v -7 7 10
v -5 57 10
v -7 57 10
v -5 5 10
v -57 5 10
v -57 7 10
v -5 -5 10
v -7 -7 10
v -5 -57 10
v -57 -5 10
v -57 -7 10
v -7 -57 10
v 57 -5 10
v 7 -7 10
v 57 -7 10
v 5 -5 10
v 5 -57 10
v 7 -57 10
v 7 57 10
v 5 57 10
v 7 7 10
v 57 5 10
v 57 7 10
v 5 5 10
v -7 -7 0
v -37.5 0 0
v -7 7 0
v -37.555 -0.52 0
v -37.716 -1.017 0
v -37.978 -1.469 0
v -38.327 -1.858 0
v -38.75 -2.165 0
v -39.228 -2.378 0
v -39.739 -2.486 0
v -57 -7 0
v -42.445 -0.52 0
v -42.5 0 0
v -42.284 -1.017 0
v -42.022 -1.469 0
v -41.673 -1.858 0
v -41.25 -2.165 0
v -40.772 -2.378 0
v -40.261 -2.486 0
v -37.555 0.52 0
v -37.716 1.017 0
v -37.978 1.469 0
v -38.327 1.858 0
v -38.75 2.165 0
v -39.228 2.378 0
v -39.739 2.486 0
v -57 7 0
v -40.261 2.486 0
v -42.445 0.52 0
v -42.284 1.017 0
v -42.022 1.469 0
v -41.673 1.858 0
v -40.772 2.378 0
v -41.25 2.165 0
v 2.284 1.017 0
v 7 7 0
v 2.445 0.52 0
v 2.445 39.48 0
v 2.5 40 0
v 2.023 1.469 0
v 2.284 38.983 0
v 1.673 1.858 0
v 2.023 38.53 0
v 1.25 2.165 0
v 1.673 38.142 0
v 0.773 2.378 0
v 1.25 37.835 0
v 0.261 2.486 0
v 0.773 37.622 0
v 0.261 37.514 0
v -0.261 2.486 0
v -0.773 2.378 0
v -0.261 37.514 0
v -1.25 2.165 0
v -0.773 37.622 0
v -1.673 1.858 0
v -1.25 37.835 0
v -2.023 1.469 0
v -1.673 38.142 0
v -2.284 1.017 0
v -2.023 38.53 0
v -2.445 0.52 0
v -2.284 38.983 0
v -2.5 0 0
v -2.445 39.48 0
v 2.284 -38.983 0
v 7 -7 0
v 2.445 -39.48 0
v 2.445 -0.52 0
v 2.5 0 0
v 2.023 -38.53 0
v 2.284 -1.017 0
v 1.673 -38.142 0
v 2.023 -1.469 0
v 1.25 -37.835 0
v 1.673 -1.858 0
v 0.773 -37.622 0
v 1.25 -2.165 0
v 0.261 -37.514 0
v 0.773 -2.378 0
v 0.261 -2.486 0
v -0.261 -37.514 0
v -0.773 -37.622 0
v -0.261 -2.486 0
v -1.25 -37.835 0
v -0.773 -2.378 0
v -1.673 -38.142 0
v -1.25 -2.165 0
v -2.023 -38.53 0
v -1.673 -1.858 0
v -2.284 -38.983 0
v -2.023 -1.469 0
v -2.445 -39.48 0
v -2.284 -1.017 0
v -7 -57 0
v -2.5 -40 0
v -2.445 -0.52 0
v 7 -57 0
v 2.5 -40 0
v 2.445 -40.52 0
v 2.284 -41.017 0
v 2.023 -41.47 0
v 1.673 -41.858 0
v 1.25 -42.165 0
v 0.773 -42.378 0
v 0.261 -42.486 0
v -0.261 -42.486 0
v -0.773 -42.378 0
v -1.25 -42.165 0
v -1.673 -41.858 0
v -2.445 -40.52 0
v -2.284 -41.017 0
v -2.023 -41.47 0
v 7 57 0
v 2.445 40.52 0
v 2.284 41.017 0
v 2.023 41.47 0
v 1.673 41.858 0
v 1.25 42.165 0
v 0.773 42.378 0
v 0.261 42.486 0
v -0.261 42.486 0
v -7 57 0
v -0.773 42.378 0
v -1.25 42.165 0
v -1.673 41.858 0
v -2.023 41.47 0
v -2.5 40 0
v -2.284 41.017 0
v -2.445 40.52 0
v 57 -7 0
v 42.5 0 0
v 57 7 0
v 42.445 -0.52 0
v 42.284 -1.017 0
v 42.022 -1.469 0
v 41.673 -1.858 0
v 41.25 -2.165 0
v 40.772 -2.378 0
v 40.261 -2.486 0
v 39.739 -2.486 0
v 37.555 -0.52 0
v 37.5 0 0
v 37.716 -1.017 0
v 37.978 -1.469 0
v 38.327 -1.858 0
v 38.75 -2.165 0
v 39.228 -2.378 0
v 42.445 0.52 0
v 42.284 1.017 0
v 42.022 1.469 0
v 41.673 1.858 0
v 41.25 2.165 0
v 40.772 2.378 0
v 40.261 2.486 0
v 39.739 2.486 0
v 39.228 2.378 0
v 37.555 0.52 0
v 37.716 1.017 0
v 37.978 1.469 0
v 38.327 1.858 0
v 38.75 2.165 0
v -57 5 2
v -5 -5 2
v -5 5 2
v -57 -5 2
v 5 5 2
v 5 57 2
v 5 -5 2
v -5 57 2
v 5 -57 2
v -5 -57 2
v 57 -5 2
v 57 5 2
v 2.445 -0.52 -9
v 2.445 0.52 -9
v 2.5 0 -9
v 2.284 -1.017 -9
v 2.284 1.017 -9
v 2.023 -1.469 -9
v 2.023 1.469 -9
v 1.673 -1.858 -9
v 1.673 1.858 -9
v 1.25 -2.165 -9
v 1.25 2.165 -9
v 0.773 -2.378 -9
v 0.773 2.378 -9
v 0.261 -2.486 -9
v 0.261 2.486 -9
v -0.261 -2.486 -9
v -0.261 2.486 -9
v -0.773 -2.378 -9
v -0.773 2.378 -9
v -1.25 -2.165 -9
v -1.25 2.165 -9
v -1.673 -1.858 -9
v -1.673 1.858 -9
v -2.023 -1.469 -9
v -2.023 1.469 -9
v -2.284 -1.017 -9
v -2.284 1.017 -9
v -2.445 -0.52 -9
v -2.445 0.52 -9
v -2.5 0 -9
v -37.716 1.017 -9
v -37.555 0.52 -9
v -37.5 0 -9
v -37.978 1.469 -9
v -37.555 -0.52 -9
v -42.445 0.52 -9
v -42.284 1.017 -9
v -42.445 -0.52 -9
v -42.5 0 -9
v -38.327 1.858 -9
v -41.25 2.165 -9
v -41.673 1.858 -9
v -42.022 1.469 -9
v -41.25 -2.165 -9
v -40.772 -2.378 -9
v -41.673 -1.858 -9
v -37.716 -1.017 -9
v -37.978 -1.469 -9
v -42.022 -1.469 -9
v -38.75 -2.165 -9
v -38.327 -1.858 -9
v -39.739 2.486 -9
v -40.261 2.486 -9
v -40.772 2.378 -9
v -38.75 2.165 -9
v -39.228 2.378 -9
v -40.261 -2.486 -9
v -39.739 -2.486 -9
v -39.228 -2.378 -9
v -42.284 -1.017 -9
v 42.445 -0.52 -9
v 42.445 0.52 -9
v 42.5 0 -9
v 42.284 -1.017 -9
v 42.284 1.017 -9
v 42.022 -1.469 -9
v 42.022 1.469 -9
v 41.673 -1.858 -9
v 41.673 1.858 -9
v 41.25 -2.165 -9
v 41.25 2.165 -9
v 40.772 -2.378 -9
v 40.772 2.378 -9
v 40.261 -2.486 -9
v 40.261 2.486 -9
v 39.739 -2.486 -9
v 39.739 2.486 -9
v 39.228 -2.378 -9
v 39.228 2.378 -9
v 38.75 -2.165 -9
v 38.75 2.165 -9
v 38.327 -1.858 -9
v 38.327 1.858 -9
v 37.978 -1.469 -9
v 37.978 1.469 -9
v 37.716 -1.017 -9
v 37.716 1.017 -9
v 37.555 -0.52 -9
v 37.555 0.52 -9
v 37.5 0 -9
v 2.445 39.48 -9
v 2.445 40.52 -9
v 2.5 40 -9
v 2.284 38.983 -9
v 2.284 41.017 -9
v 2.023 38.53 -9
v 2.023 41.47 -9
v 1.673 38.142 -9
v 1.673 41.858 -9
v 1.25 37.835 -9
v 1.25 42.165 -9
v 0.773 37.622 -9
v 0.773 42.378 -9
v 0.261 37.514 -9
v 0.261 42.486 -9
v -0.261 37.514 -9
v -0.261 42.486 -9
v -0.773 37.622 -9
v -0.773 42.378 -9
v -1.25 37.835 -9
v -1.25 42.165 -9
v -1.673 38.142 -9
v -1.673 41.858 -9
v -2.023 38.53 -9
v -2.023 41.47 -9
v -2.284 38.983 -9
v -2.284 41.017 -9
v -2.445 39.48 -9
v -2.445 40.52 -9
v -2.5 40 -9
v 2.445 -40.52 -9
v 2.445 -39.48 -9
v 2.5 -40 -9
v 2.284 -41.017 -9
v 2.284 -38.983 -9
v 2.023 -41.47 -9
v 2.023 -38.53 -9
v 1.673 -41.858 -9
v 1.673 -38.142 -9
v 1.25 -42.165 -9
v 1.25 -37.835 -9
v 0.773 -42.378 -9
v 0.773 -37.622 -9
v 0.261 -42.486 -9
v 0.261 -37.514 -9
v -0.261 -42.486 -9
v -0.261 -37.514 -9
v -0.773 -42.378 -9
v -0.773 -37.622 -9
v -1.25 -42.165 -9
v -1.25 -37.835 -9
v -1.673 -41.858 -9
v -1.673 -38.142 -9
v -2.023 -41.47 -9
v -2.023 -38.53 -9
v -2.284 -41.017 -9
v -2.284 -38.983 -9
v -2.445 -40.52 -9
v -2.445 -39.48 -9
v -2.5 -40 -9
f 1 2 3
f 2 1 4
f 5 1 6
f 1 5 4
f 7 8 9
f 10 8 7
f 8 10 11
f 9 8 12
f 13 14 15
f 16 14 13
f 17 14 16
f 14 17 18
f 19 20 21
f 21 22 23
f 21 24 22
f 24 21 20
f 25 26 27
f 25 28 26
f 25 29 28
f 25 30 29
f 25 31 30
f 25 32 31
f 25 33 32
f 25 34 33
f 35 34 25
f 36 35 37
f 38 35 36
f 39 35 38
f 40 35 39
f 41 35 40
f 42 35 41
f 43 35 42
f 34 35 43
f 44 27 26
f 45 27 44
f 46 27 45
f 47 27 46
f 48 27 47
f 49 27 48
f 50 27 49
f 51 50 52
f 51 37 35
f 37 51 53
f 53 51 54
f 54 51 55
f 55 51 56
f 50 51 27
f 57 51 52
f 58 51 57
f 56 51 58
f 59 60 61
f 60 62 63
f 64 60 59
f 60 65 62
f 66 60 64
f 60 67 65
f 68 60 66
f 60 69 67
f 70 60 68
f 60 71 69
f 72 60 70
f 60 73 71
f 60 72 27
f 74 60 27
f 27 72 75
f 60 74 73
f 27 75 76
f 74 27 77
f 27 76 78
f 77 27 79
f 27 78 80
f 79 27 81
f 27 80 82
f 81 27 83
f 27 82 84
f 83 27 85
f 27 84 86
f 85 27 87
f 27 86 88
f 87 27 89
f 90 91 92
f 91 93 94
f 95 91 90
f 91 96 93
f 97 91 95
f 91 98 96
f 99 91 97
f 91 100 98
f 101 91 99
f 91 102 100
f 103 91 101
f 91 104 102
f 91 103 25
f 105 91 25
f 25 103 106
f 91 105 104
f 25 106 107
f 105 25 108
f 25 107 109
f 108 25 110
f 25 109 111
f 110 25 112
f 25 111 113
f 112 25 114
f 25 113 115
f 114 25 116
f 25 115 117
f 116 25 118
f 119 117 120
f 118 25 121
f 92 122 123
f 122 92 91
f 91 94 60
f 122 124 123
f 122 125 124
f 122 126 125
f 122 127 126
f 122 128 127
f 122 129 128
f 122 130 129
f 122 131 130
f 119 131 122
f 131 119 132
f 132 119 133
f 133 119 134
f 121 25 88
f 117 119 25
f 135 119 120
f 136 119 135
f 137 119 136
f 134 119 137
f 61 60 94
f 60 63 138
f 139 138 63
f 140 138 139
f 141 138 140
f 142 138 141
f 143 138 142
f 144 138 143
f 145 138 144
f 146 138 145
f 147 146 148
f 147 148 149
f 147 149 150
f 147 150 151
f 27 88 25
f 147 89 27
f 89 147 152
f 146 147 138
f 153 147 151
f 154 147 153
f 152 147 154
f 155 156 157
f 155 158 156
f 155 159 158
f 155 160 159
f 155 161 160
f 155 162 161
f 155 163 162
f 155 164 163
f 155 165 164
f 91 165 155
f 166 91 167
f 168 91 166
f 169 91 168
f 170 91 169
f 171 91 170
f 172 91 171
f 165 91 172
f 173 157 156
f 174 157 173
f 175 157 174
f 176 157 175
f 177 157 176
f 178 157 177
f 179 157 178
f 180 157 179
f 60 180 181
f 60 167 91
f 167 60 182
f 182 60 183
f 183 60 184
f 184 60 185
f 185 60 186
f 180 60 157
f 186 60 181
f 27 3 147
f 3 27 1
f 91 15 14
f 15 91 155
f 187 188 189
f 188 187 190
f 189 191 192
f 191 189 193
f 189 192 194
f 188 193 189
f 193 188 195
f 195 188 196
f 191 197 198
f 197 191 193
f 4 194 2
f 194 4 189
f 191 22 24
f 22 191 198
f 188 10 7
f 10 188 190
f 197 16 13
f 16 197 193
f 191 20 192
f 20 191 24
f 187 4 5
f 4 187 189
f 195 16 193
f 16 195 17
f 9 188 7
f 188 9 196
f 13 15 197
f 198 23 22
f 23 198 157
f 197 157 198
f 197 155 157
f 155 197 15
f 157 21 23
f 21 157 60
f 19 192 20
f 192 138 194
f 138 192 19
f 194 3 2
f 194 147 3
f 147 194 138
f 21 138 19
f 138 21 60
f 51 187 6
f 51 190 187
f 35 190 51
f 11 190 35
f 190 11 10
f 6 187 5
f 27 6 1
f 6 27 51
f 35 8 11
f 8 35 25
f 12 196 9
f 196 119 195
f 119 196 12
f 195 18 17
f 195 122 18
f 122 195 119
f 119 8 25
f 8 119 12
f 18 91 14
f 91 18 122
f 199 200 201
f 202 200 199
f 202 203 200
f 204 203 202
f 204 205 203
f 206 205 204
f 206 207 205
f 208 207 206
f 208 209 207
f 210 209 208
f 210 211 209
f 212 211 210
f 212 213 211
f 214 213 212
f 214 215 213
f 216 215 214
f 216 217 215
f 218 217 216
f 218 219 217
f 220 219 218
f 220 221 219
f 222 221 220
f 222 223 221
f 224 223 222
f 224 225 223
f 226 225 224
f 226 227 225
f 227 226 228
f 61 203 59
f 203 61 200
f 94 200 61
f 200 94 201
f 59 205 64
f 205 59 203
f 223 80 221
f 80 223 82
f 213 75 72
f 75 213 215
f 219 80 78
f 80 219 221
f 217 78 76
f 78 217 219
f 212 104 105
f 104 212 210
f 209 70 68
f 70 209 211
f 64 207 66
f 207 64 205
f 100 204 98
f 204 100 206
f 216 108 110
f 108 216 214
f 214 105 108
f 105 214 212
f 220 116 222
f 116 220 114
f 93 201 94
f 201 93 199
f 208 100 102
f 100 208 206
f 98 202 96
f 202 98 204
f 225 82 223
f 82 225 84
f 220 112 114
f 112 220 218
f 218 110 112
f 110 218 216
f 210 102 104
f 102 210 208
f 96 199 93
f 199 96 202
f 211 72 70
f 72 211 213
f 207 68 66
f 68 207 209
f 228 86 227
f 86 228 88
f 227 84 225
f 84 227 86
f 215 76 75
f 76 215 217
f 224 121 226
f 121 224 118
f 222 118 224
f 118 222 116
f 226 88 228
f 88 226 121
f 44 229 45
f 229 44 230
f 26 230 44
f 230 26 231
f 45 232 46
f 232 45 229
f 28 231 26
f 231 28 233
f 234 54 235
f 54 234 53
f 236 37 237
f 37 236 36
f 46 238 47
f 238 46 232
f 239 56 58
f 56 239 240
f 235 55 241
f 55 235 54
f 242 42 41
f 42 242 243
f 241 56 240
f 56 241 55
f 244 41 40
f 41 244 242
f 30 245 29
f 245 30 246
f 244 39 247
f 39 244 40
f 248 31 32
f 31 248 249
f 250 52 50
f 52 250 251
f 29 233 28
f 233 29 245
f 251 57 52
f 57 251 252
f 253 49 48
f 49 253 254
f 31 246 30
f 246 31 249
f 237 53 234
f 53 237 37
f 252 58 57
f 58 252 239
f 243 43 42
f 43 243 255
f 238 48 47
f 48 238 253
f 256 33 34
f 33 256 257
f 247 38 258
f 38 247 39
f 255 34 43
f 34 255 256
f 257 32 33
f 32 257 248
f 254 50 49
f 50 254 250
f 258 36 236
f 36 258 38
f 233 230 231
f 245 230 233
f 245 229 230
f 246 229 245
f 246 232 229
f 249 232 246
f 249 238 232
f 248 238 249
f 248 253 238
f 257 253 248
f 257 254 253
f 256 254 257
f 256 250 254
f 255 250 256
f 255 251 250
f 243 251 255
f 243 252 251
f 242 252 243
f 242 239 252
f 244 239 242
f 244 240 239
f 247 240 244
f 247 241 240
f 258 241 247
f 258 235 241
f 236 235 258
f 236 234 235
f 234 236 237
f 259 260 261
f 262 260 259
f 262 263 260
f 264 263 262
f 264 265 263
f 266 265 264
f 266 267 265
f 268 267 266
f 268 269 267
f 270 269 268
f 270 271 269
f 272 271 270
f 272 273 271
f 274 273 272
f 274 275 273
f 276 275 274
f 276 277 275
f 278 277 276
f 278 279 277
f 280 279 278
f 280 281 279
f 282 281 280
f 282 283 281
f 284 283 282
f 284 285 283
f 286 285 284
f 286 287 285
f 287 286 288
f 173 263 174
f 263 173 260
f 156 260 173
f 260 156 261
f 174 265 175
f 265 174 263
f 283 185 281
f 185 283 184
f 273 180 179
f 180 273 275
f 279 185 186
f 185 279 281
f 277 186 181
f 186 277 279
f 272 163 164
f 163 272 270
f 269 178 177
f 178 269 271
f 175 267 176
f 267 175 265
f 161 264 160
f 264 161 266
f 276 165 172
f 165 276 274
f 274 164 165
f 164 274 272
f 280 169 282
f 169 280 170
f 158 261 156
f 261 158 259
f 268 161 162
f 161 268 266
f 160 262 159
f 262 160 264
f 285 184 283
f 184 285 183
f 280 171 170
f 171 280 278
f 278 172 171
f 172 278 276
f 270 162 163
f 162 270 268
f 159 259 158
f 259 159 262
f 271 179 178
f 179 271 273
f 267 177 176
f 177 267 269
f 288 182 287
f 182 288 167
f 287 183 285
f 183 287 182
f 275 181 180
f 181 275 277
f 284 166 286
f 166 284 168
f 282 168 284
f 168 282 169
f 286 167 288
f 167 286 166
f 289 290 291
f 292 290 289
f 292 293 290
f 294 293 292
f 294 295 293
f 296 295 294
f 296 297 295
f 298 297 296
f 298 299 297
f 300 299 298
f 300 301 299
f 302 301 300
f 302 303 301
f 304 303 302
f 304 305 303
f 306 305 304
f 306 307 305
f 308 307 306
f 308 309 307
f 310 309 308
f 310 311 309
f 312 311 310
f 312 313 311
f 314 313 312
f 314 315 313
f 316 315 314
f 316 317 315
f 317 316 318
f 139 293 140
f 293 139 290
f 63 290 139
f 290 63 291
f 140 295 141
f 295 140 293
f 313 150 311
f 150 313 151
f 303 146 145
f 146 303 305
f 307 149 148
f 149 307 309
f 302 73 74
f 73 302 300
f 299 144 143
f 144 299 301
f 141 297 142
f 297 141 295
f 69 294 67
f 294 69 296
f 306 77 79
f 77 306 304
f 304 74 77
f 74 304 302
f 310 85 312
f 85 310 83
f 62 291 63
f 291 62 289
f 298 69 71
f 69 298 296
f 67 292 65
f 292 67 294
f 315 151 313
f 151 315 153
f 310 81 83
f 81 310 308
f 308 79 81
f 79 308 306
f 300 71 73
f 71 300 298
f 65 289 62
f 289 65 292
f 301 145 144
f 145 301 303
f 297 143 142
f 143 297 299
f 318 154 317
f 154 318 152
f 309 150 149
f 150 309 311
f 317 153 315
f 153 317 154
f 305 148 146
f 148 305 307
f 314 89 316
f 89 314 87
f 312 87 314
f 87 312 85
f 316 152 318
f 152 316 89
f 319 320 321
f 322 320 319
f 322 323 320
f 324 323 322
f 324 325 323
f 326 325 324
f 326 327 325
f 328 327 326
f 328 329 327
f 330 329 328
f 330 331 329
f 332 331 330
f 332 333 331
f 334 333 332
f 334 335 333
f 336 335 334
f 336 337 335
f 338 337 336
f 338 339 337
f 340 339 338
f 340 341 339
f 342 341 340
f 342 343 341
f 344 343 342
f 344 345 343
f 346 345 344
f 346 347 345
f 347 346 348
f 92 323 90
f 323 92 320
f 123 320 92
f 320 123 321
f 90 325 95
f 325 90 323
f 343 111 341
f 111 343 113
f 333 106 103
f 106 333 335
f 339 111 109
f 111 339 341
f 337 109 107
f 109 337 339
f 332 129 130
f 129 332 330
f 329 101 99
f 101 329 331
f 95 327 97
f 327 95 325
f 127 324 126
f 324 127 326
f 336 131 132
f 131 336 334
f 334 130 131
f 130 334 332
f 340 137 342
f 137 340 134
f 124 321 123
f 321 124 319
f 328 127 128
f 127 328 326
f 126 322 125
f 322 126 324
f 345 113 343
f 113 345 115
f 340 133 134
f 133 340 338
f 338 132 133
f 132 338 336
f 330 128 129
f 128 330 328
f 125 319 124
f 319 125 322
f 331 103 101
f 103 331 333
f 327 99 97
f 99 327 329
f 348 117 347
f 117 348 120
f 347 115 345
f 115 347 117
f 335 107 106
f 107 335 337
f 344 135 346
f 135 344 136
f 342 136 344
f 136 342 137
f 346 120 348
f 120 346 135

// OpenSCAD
// Крестообразный паз с шипами для вставки в основание (УДЛИНЕННАЯ ВЕРСИЯ)
// Модульная конструкция: центральное основание + 4 рукава + шипы

// Параметры (все размеры в мм)
center_size = 10;     // Размер центрального квадрата (внутри)
sleeve_length = 50;   // Длина рукава (удлиненная)
groove_width = 10;    // Ширина паза (внутри) - для фанеры 9.3мм
wall_height = 10;     // Высота стенок
wall_thickness = 2;   // Толщина стенок

// Параметры шипов
dowel_diameter = 5;   // Диаметр шипа
dowel_depth = 9;      // Глубина шипа (высота)
dowel_spacing = 40;   // Шаг между шипами (удлиненный)

// Вычисляемые размеры
total_width = groove_width + 2 * wall_thickness;  // 14 мм
center_total = center_size + 2 * wall_thickness;  // 14 мм

// 1. Метод: нарисовать основание
module draw_base() {
    difference() {
        cube([center_total, center_total, wall_height]);
        translate([wall_thickness, wall_thickness, wall_thickness])
            cube([center_size, center_size, wall_height]);
    }
}

// Модуль для создания одного рукава
module single_sleeve() {
    difference() {
        cube([sleeve_length, total_width, wall_height]);
        translate([0, wall_thickness, wall_thickness])
            cube([sleeve_length, groove_width, wall_height]);
    }
}

// Метод: вырезать отверстие в стенке основания
module cut_wall_opening(side) {
    if (side == 0) {
        translate([center_total - wall_thickness - 0.1, wall_thickness, wall_thickness])
            cube([wall_thickness + 0.2, groove_width, wall_height]);
    } else if (side == 1) {
        translate([wall_thickness, center_total - wall_thickness - 0.1, wall_thickness])
            cube([groove_width, wall_thickness + 0.2, wall_height]);
    } else if (side == 2) {
        translate([-0.1, wall_thickness, wall_thickness])
            cube([wall_thickness + 0.2, groove_width, wall_height]);
    } else if (side == 3) {
        translate([wall_thickness, -0.1, wall_thickness])
            cube([groove_width, wall_thickness + 0.2, wall_height]);
    }
}

// 2. Метод: прицепить рукав к основанию
module attach_sleeve(side) {
    if (side == 0) {
        translate([center_total, center_total/2 - total_width/2, 0])
            single_sleeve();
    } else if (side == 1) {
        translate([center_total/2 + total_width/2, center_total, 0])
            rotate([0, 0, 90])
                single_sleeve();
    } else if (side == 2) {
        translate([-sleeve_length, center_total/2 - total_width/2, 0])
            single_sleeve();
    } else if (side == 3) {
        translate([center_total/2 + total_width/2, -sleeve_length, 0])
            rotate([0, 0, 90])
                single_sleeve();
    }
}

// 3. Метод: добавить шип в позиции (x, y)
module add_dowel(x, y) {
    translate([x, y, -dowel_depth])
        cylinder(h=dowel_depth, d=dowel_diameter, $fn=30);
}

// Собираем крестообразную конструкцию с шипами
translate([-center_total/2, -center_total/2, 0]) {
    union() {
        difference() {
            draw_base();
            cut_wall_opening(0);  // Право
            cut_wall_opening(1);  // Верх
            cut_wall_opening(2);  // Лево
            cut_wall_opening(3);  // Низ
        }
        attach_sleeve(0);  // Право
        attach_sleeve(1);  // Верх
        attach_sleeve(2);  // Лево
        attach_sleeve(3);  // Низ

        // Шипы: центр + 4 направления
        add_dowel(center_total/2, center_total/2);                    // Центр
        add_dowel(center_total/2 - dowel_spacing, center_total/2);   // Лево
        add_dowel(center_total/2 + dowel_spacing, center_total/2);   // Право
        add_dowel(center_total/2, center_total/2 + dowel_spacing);   // Верх
        add_dowel(center_total/2, center_total/2 - dowel_spacing);   // Низ
    }
}

// Информация для проверки
echo("=== Размеры крестообразного паза с шипами (LONG) ===");
echo("Длина рукава:", sleeve_length, "мм");
echo("Количество шипов: 5 (центр + 4 направления)");
echo("Шаг между шипами:", dowel_spacing, "мм");
